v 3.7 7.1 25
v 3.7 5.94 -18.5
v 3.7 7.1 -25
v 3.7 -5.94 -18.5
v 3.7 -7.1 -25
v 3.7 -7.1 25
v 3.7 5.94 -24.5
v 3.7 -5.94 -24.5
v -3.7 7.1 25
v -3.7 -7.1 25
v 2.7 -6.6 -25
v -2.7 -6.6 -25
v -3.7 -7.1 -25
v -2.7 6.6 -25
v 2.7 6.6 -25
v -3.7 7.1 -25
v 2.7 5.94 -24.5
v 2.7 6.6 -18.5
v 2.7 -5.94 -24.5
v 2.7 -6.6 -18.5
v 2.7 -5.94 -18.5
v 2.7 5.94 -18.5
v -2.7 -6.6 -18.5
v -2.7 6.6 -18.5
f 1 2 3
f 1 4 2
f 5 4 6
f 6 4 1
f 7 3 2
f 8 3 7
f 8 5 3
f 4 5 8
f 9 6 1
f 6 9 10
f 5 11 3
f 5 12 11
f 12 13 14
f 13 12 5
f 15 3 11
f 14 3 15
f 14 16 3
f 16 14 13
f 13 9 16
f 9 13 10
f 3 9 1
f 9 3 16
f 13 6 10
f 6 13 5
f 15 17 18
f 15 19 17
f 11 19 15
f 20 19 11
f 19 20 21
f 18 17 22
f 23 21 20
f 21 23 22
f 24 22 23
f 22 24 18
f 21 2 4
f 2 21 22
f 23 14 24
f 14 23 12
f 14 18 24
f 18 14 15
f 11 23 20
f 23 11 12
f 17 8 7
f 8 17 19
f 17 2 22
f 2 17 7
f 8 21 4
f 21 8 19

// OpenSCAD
usb_x = 5.4;
usb_y = 13.2;
usb_z = 9;

difference() {
    cube(size = [usb_x + 2, usb_y + 1, 50], center = true);

    translate([0, 0, -23]) 
    cube(size = [usb_x, usb_y, usb_z], center = true);
    
    translate([4, 0, -21.5])
    cube(size = [3, ((usb_y / 100) * 90), 6], center = true);
}
